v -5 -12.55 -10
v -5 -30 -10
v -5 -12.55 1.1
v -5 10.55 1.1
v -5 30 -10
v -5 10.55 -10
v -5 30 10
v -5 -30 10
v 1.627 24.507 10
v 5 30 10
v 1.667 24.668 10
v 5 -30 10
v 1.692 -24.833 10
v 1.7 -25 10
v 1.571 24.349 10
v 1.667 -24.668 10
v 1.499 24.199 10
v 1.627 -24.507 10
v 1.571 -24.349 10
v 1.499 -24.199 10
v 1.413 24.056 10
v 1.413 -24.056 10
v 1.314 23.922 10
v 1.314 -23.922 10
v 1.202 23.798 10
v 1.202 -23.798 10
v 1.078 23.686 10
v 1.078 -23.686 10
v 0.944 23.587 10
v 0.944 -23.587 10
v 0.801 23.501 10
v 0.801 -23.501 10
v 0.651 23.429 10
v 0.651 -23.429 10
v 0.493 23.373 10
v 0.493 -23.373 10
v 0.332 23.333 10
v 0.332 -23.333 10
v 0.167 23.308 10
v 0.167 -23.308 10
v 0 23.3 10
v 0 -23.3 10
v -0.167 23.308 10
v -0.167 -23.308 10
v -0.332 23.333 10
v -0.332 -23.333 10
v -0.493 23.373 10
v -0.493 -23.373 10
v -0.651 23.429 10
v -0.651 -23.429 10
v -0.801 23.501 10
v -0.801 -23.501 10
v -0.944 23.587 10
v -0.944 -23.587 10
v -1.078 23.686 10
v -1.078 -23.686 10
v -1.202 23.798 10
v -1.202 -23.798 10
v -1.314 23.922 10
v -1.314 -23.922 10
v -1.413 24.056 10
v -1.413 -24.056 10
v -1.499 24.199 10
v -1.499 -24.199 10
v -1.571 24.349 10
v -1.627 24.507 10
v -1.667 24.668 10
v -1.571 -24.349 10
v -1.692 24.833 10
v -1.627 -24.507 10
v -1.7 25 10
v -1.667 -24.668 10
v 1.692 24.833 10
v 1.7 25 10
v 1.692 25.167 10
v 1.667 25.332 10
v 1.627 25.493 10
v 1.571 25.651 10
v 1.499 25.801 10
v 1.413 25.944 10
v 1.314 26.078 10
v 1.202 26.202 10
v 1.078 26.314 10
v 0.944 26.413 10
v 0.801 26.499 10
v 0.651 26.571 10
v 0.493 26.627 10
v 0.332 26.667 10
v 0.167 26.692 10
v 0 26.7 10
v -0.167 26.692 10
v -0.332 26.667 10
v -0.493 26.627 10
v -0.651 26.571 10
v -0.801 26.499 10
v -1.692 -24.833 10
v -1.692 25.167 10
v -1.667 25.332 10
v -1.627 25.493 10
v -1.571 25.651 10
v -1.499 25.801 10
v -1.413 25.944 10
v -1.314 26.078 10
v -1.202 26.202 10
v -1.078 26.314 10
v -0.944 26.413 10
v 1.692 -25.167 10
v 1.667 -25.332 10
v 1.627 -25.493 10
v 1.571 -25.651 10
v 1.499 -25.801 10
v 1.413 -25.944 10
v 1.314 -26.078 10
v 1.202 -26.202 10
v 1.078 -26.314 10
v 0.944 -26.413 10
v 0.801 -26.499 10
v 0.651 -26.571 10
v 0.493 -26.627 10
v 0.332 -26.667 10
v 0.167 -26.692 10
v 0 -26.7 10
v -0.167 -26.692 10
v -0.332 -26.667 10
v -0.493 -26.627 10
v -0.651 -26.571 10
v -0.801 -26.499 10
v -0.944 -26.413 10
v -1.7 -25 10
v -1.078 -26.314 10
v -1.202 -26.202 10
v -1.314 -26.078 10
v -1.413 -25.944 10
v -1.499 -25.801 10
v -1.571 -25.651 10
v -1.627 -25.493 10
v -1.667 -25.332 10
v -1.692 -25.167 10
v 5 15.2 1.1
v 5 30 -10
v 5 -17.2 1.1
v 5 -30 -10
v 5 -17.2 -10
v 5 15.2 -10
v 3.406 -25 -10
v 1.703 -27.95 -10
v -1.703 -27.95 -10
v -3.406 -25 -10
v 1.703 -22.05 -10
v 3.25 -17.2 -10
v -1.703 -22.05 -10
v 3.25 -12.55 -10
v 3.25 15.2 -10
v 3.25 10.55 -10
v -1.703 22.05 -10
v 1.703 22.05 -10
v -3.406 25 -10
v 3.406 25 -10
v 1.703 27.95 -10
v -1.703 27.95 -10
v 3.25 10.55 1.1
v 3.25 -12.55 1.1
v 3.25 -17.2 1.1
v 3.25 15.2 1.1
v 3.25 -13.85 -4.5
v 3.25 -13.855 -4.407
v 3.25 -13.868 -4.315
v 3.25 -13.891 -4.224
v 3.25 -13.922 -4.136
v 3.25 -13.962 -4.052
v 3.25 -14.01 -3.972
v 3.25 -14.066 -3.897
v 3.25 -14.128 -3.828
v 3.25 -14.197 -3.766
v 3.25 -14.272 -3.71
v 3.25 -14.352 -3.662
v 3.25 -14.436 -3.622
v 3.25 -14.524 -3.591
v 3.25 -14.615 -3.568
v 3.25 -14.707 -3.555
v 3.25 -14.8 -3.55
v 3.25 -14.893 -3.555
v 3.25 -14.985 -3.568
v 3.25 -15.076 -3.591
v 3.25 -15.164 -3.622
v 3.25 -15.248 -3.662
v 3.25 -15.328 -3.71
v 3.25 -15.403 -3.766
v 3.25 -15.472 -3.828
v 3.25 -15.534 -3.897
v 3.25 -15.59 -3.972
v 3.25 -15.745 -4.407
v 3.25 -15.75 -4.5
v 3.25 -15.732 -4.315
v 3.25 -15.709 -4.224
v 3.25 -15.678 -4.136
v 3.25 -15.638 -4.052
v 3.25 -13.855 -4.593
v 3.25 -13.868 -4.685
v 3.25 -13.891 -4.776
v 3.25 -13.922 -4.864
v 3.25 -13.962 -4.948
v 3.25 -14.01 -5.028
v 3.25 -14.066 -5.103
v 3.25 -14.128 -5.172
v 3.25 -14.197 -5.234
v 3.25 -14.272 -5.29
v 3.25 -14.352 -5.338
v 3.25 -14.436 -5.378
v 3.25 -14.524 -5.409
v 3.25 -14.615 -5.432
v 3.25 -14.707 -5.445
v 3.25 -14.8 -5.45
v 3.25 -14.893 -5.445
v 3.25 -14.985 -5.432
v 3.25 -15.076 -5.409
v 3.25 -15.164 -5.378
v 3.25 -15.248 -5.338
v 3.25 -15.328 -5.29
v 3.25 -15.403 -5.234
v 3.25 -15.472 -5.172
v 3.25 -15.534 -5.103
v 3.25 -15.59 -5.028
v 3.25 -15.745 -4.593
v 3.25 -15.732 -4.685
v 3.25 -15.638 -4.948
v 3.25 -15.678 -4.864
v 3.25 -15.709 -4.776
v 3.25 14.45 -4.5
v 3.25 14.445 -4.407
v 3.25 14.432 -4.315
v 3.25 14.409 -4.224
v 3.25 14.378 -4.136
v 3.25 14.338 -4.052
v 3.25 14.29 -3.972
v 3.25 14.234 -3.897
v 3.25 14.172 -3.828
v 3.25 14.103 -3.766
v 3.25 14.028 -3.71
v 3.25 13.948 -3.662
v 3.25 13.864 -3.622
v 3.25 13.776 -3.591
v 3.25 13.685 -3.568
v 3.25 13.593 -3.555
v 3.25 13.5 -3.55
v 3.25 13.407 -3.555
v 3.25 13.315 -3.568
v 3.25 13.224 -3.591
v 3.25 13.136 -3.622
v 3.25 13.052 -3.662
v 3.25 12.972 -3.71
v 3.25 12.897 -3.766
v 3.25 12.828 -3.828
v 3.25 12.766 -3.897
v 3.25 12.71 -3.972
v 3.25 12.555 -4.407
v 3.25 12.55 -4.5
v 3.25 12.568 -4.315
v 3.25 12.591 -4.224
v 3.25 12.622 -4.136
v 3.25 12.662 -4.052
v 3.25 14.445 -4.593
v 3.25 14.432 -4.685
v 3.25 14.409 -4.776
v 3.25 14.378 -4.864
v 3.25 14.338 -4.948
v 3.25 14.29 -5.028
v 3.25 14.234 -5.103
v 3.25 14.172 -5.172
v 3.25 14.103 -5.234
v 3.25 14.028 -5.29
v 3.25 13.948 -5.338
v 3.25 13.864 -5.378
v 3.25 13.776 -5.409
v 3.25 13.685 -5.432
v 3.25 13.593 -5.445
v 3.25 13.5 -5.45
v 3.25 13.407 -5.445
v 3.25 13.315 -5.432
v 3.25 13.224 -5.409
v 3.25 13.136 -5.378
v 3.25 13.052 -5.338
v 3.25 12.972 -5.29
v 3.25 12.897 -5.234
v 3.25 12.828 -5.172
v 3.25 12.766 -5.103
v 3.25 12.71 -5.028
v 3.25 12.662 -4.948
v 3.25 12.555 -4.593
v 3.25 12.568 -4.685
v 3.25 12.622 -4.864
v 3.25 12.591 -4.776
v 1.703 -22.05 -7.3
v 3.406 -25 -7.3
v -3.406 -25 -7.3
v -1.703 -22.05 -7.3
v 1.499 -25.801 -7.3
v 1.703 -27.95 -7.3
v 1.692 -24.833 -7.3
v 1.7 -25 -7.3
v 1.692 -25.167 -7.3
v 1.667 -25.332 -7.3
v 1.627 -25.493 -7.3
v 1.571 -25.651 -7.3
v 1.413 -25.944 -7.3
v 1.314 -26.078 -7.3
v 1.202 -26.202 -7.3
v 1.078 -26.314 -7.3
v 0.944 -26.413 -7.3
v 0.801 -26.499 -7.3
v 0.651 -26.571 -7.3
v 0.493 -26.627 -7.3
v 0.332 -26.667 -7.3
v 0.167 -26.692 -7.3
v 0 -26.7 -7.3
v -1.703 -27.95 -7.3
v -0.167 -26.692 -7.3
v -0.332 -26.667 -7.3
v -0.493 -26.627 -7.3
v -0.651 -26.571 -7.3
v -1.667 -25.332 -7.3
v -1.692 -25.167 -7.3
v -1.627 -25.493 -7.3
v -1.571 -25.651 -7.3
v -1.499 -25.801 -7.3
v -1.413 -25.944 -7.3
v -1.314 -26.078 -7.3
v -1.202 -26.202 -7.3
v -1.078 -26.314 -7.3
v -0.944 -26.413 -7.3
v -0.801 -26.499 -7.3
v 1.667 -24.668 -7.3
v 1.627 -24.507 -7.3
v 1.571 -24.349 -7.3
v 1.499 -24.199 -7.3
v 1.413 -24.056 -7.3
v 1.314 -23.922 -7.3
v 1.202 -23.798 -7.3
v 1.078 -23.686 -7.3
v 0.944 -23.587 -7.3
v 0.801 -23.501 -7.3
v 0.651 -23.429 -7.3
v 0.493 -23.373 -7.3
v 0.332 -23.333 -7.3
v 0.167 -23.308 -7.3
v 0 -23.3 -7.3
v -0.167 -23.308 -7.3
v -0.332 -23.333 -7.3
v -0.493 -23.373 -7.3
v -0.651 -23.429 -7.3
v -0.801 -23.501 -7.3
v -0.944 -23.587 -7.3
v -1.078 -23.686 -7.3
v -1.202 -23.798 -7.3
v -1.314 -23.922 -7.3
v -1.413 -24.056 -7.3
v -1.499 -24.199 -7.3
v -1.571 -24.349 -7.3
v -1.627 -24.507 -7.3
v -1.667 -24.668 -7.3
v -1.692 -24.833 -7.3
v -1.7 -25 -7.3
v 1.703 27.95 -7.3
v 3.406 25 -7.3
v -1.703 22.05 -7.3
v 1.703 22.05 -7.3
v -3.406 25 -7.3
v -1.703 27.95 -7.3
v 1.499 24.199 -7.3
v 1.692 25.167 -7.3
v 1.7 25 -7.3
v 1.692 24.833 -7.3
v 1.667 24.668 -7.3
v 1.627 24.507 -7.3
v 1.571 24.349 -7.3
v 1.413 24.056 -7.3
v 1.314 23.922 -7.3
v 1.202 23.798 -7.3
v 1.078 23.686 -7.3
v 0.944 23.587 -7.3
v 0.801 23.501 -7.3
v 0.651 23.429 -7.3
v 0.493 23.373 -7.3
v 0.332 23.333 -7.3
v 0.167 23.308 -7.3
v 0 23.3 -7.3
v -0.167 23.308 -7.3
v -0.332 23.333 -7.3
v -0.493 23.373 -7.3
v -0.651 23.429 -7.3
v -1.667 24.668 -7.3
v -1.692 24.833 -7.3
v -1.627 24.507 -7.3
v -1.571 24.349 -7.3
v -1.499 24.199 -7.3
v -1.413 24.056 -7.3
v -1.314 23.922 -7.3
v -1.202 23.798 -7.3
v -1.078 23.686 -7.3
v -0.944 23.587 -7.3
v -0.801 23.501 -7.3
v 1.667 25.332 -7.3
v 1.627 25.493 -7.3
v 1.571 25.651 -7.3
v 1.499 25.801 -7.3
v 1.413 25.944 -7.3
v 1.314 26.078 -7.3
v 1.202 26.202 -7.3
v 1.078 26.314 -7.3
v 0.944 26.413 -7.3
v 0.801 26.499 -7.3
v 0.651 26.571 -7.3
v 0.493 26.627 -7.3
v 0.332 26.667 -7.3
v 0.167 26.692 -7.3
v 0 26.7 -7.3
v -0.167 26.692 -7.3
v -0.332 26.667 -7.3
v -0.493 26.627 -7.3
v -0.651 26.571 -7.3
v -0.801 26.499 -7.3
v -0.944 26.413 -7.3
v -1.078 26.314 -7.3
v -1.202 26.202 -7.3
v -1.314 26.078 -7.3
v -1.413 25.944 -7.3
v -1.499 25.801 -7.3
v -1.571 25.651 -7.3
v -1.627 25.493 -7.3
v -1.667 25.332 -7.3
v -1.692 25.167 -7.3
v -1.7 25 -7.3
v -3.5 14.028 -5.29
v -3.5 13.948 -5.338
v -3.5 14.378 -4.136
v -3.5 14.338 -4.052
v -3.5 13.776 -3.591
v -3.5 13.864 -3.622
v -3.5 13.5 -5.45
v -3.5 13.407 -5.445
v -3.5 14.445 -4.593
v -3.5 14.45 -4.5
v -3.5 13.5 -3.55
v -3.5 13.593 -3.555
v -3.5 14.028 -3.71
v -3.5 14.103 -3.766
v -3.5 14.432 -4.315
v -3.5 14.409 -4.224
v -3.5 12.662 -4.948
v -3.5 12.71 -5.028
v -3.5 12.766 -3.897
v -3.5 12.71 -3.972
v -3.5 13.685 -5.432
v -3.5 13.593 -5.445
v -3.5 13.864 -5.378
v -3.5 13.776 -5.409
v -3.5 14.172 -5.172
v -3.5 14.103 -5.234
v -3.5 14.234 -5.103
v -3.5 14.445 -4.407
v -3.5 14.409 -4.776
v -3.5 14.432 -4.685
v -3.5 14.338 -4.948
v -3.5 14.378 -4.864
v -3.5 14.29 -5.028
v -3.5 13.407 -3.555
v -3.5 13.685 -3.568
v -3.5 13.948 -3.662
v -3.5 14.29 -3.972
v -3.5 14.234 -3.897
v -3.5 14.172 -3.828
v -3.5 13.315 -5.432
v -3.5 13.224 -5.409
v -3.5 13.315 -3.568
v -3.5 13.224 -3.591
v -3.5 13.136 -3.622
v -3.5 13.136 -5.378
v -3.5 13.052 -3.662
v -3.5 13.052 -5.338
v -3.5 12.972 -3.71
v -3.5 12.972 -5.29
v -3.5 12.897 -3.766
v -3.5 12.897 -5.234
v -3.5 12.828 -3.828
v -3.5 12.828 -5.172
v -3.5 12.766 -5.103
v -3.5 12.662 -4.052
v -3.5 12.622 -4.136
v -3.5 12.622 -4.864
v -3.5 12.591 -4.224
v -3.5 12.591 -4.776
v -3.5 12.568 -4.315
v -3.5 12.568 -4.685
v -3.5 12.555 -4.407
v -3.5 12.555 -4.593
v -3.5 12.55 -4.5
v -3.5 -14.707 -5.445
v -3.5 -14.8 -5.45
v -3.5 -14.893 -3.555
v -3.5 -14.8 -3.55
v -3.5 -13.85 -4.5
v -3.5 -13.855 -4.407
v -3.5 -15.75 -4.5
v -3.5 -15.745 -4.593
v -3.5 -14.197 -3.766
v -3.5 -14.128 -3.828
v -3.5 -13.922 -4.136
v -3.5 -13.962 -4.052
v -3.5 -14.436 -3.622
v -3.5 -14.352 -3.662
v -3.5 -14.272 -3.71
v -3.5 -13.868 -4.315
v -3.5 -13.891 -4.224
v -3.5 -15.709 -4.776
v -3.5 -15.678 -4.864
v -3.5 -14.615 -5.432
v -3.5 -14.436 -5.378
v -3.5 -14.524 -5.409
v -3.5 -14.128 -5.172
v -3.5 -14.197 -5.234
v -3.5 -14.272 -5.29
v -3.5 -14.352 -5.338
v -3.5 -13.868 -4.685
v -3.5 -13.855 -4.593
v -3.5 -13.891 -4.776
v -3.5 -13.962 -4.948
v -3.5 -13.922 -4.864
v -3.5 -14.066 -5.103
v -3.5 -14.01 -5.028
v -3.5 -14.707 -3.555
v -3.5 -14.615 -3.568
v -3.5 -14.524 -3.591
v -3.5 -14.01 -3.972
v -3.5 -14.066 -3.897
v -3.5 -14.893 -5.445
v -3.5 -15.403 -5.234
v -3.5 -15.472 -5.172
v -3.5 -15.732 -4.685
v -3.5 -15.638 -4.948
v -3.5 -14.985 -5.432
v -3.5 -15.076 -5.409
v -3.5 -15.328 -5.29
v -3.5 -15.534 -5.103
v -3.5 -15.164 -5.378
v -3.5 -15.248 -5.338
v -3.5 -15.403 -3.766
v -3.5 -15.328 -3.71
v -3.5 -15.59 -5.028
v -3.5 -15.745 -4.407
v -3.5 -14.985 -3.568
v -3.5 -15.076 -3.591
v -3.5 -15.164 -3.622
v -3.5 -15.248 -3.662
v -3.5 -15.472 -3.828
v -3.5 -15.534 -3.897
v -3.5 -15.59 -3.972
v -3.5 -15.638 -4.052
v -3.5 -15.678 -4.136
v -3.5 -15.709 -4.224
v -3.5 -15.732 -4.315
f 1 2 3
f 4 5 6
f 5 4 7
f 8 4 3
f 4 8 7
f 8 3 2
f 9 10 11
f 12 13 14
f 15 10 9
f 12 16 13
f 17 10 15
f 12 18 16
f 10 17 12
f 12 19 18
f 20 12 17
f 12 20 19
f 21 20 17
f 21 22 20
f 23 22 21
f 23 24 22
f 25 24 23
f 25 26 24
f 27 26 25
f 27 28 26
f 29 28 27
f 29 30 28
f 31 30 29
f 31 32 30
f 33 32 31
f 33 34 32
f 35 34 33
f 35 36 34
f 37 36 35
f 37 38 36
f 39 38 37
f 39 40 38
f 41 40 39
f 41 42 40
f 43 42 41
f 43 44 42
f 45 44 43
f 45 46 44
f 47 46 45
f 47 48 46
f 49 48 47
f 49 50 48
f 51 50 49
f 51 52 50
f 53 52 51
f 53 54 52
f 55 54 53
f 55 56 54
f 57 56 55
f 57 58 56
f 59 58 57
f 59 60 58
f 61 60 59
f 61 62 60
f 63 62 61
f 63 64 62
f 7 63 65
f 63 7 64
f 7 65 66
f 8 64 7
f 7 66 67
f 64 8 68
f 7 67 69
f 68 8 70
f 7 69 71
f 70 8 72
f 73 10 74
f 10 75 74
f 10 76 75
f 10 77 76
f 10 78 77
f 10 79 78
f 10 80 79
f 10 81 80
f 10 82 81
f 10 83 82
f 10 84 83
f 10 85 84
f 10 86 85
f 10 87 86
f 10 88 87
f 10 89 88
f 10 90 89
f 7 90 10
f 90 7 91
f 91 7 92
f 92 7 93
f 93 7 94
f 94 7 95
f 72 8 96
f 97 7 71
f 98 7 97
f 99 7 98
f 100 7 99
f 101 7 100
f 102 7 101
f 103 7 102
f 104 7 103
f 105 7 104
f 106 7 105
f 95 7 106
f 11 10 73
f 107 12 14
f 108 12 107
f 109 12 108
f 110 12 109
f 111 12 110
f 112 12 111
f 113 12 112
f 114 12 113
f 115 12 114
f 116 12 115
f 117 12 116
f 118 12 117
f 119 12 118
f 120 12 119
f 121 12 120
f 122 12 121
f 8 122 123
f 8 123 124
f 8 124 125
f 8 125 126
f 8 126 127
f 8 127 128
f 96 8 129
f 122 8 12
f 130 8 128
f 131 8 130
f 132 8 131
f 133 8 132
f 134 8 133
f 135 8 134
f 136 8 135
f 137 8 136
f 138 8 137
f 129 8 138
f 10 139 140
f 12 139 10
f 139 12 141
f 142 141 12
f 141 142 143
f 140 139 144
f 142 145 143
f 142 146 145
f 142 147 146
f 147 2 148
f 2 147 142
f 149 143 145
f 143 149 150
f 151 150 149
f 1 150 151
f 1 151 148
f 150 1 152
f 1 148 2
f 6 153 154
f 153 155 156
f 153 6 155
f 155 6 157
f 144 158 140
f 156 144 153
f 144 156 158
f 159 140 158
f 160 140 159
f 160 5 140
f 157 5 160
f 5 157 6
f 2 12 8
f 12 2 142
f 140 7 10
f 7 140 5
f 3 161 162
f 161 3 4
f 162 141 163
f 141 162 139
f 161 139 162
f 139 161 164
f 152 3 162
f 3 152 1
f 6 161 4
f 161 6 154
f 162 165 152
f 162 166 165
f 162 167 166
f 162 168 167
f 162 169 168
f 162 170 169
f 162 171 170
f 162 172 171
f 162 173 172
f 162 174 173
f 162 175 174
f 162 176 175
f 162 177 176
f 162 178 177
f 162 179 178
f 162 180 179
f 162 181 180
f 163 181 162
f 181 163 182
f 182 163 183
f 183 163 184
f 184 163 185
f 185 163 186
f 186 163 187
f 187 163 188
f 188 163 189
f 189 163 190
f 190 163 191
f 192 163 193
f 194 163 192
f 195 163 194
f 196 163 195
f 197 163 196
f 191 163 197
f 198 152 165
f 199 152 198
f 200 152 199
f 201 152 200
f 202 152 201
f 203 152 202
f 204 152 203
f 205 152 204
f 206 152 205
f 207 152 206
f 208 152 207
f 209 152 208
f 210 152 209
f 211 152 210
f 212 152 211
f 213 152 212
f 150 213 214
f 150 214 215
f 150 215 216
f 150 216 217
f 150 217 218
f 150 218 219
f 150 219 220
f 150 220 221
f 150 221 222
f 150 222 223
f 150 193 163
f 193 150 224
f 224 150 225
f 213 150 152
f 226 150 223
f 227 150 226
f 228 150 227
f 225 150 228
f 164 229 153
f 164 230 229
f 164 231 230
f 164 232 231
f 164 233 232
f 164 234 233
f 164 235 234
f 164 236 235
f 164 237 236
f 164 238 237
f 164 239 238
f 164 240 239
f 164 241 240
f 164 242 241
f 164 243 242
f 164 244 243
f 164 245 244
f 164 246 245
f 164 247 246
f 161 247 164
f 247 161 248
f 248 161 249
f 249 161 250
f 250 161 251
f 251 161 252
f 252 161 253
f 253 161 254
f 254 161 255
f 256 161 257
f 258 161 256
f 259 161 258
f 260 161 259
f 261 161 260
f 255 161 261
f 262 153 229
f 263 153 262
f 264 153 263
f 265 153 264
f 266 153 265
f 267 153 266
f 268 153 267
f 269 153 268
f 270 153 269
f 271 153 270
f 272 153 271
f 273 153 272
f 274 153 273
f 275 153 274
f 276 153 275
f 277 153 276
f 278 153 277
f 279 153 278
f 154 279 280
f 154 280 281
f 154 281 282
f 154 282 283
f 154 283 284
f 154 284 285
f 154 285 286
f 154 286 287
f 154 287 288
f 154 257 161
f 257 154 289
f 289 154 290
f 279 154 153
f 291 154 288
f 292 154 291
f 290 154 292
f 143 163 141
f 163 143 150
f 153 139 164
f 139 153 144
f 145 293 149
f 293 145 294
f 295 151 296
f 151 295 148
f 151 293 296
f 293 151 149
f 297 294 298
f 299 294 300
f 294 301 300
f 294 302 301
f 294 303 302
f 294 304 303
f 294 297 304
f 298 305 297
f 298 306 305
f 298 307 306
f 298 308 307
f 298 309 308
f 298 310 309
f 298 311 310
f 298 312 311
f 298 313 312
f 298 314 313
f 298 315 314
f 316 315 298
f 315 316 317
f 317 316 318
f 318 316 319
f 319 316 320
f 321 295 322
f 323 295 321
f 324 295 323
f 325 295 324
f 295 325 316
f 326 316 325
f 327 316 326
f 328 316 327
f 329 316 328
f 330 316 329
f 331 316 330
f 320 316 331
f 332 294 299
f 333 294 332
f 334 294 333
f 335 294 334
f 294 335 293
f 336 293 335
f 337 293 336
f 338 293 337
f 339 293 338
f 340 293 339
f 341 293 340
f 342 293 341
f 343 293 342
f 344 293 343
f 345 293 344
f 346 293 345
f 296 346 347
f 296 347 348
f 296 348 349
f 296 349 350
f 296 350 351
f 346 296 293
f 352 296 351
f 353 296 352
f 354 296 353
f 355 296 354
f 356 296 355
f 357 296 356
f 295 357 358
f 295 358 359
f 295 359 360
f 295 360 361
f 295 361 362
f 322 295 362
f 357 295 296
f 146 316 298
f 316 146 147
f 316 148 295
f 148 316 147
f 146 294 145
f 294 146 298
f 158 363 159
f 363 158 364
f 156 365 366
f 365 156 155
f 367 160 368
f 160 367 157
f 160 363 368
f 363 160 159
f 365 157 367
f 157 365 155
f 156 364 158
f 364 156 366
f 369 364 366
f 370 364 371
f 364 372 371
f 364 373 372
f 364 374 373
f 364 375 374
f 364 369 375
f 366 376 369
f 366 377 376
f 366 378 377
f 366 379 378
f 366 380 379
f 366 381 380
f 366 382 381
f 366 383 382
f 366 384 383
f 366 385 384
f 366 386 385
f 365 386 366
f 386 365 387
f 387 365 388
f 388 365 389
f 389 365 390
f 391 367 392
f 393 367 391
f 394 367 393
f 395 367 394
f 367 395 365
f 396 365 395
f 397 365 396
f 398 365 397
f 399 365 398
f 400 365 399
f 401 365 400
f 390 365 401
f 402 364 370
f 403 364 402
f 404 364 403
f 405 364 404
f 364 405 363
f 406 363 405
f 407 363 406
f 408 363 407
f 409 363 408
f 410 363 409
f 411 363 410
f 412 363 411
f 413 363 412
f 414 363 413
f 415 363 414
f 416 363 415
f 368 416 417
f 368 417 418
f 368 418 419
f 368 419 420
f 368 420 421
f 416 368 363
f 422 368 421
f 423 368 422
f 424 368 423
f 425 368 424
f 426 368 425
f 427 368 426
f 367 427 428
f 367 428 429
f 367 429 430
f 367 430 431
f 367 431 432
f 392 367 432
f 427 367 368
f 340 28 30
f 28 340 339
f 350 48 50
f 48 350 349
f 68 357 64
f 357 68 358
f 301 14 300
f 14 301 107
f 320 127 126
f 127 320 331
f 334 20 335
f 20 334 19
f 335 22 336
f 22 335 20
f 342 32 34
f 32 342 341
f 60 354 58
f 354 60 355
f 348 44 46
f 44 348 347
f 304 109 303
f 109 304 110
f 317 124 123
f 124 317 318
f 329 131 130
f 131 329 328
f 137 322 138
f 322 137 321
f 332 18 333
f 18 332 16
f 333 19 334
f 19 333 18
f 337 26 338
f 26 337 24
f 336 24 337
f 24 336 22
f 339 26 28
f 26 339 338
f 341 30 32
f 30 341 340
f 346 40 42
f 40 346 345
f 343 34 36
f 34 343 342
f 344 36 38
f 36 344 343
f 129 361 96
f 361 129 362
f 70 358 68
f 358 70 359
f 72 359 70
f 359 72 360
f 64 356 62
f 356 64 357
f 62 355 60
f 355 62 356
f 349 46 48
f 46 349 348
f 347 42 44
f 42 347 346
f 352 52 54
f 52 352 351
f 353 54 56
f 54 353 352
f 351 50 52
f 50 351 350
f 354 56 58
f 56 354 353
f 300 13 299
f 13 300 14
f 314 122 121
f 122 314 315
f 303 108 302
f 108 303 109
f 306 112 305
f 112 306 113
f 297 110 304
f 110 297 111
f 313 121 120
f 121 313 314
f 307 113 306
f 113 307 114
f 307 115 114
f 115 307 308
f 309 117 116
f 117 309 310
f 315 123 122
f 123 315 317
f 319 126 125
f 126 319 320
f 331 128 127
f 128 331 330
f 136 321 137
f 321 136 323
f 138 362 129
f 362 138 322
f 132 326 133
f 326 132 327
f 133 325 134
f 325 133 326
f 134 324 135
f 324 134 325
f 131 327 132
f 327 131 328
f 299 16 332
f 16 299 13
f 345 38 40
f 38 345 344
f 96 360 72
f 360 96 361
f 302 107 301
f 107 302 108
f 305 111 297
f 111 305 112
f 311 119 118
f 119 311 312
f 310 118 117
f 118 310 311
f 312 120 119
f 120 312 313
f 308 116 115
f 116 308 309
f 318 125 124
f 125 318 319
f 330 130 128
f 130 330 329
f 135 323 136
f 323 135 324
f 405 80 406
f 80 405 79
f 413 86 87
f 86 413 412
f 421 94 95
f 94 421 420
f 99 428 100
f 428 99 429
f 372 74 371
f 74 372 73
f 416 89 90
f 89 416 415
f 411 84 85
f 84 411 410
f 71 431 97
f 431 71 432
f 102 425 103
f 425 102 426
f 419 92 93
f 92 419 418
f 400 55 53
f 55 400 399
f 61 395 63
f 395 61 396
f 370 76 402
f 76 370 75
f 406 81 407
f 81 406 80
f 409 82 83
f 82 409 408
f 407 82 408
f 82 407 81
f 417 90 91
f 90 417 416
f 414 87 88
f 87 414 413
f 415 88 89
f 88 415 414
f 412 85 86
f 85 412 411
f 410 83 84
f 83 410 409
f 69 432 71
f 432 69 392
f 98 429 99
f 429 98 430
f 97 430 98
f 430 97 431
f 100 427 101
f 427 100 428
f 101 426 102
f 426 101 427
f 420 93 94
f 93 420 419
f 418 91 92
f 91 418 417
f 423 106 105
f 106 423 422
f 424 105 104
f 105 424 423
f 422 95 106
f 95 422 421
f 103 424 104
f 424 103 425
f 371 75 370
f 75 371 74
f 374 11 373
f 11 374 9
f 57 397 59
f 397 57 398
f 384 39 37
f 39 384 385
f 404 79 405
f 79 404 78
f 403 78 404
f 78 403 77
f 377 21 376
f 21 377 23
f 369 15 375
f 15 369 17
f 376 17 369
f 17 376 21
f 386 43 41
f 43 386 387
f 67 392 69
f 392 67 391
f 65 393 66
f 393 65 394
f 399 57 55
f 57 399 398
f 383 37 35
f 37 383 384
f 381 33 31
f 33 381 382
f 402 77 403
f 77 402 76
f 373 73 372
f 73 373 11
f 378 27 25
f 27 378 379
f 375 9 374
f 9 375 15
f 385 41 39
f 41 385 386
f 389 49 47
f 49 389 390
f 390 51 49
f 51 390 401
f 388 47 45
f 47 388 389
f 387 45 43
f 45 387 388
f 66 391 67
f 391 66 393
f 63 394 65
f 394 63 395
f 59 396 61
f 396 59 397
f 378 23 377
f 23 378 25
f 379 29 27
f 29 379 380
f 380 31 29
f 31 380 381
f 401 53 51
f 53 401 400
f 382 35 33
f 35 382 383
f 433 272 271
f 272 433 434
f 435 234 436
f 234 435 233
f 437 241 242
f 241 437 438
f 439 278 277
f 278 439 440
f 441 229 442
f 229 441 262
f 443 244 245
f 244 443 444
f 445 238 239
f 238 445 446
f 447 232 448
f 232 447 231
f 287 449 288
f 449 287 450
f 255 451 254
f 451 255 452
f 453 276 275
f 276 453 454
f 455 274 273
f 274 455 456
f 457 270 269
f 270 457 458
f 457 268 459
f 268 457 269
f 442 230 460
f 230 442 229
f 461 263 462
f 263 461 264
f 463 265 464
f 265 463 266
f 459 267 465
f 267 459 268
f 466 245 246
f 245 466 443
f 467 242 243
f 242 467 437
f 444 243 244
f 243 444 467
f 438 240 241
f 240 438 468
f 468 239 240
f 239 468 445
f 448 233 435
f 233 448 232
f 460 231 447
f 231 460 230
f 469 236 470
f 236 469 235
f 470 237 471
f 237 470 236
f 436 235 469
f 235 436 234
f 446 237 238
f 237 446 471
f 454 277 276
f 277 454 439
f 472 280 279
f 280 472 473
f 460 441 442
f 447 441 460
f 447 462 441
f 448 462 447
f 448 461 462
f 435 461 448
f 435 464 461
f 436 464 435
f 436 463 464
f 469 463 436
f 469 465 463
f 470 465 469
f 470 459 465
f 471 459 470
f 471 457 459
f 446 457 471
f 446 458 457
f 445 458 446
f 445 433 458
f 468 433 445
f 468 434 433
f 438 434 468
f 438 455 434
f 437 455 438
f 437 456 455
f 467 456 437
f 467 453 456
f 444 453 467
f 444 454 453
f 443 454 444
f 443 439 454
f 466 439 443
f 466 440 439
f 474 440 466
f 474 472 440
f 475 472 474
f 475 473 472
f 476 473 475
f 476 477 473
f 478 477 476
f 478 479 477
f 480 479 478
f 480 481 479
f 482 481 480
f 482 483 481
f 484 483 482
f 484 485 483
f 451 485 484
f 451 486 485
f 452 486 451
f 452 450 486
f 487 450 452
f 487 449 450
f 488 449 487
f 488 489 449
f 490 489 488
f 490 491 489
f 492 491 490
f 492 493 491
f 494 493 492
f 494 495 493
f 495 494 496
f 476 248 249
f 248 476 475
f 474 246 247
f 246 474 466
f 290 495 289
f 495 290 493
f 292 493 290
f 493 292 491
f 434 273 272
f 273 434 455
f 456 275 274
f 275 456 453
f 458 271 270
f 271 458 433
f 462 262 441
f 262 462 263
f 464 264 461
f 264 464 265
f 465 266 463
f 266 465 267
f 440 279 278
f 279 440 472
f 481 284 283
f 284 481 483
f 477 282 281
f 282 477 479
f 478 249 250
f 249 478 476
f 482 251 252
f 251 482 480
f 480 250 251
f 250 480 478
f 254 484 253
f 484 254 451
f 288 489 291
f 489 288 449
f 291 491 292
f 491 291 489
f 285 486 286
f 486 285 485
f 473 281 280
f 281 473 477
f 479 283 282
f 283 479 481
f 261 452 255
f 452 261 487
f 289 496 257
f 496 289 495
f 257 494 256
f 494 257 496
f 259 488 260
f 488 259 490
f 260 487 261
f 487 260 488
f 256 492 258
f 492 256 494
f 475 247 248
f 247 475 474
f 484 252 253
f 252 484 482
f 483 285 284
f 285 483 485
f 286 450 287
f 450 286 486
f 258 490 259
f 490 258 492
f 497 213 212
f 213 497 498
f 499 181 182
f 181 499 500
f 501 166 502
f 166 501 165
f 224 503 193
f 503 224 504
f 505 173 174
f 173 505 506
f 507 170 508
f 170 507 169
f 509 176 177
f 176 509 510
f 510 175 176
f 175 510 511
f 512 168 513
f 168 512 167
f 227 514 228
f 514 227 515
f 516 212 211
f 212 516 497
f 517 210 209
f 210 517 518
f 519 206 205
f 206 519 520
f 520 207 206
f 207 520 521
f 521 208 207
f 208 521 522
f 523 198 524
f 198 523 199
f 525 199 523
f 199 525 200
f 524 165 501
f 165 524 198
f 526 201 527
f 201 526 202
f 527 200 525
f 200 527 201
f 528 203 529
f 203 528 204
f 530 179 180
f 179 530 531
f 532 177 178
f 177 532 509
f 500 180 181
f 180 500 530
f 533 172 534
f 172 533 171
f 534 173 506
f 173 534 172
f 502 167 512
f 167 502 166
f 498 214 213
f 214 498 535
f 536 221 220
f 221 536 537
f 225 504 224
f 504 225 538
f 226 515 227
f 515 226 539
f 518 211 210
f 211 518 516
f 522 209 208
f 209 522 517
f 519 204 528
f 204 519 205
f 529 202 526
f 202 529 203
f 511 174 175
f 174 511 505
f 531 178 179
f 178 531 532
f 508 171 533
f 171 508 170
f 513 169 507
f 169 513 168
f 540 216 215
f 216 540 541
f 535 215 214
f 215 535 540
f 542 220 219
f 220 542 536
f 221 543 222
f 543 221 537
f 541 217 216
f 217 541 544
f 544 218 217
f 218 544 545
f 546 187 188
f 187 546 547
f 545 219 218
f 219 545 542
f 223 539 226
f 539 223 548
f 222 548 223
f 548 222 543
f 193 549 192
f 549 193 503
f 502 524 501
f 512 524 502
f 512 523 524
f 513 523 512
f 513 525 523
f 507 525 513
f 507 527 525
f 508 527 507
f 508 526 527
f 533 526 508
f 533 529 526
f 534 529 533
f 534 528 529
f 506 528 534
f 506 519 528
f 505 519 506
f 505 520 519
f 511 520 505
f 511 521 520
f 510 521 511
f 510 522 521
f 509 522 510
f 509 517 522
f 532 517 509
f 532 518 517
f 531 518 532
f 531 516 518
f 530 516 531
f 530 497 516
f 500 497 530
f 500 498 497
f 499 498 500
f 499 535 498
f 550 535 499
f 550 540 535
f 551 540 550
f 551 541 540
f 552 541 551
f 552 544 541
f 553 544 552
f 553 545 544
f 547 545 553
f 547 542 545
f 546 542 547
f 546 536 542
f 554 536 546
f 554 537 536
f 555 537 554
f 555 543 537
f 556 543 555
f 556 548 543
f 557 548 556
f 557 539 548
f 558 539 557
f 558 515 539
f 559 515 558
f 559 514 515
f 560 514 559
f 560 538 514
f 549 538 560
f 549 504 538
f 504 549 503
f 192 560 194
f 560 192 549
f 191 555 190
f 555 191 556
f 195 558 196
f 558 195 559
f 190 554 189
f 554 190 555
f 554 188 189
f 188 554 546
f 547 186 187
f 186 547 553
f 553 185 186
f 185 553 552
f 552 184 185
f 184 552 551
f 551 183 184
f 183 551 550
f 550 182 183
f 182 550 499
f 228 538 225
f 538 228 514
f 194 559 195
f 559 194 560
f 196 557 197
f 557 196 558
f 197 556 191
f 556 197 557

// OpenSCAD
Lang_Nummer = 2*(5.5+0.4) / sqrt(3);

difference(){

//MiniMøiser

translate([0,0,0])
cube([10,60,20],center=true);
translate([0,-1,-5])
    cube([11,23.1,12.2],center=true);

//In'ak
translate([4.2,-1,-5])
    cube([1.9,32.4,12.2],center=true);

//Måtrik'åller
translate([0,-25,-10])
   cylinder(d=Lang_Nummer, h=5.4,$fn=6, center=true); 

    translate([0,25,-10])
   cylinder(d=Lang_Nummer, h=5.4,$fn=6, center=true); 
    
  //Små'åller
    translate([0,-25,0])
   cylinder(d=3.4, h=70,$fn=64,center=true); 
   

   
       translate([0,25,0])
   cylinder(d=3.4, h=70,$fn=64,center=true); 
   
   
   //Små in'ak 'uller
rotate([0,90,0])
translate([4.5,13.5,0])
    cylinder(d=1.9, h=7,$fn=64,center=true);
    
rotate([0,90,0])
translate([4.5,-14.8,0])
    cylinder(d=1.9, h=7,$fn=64,center=true);
}
